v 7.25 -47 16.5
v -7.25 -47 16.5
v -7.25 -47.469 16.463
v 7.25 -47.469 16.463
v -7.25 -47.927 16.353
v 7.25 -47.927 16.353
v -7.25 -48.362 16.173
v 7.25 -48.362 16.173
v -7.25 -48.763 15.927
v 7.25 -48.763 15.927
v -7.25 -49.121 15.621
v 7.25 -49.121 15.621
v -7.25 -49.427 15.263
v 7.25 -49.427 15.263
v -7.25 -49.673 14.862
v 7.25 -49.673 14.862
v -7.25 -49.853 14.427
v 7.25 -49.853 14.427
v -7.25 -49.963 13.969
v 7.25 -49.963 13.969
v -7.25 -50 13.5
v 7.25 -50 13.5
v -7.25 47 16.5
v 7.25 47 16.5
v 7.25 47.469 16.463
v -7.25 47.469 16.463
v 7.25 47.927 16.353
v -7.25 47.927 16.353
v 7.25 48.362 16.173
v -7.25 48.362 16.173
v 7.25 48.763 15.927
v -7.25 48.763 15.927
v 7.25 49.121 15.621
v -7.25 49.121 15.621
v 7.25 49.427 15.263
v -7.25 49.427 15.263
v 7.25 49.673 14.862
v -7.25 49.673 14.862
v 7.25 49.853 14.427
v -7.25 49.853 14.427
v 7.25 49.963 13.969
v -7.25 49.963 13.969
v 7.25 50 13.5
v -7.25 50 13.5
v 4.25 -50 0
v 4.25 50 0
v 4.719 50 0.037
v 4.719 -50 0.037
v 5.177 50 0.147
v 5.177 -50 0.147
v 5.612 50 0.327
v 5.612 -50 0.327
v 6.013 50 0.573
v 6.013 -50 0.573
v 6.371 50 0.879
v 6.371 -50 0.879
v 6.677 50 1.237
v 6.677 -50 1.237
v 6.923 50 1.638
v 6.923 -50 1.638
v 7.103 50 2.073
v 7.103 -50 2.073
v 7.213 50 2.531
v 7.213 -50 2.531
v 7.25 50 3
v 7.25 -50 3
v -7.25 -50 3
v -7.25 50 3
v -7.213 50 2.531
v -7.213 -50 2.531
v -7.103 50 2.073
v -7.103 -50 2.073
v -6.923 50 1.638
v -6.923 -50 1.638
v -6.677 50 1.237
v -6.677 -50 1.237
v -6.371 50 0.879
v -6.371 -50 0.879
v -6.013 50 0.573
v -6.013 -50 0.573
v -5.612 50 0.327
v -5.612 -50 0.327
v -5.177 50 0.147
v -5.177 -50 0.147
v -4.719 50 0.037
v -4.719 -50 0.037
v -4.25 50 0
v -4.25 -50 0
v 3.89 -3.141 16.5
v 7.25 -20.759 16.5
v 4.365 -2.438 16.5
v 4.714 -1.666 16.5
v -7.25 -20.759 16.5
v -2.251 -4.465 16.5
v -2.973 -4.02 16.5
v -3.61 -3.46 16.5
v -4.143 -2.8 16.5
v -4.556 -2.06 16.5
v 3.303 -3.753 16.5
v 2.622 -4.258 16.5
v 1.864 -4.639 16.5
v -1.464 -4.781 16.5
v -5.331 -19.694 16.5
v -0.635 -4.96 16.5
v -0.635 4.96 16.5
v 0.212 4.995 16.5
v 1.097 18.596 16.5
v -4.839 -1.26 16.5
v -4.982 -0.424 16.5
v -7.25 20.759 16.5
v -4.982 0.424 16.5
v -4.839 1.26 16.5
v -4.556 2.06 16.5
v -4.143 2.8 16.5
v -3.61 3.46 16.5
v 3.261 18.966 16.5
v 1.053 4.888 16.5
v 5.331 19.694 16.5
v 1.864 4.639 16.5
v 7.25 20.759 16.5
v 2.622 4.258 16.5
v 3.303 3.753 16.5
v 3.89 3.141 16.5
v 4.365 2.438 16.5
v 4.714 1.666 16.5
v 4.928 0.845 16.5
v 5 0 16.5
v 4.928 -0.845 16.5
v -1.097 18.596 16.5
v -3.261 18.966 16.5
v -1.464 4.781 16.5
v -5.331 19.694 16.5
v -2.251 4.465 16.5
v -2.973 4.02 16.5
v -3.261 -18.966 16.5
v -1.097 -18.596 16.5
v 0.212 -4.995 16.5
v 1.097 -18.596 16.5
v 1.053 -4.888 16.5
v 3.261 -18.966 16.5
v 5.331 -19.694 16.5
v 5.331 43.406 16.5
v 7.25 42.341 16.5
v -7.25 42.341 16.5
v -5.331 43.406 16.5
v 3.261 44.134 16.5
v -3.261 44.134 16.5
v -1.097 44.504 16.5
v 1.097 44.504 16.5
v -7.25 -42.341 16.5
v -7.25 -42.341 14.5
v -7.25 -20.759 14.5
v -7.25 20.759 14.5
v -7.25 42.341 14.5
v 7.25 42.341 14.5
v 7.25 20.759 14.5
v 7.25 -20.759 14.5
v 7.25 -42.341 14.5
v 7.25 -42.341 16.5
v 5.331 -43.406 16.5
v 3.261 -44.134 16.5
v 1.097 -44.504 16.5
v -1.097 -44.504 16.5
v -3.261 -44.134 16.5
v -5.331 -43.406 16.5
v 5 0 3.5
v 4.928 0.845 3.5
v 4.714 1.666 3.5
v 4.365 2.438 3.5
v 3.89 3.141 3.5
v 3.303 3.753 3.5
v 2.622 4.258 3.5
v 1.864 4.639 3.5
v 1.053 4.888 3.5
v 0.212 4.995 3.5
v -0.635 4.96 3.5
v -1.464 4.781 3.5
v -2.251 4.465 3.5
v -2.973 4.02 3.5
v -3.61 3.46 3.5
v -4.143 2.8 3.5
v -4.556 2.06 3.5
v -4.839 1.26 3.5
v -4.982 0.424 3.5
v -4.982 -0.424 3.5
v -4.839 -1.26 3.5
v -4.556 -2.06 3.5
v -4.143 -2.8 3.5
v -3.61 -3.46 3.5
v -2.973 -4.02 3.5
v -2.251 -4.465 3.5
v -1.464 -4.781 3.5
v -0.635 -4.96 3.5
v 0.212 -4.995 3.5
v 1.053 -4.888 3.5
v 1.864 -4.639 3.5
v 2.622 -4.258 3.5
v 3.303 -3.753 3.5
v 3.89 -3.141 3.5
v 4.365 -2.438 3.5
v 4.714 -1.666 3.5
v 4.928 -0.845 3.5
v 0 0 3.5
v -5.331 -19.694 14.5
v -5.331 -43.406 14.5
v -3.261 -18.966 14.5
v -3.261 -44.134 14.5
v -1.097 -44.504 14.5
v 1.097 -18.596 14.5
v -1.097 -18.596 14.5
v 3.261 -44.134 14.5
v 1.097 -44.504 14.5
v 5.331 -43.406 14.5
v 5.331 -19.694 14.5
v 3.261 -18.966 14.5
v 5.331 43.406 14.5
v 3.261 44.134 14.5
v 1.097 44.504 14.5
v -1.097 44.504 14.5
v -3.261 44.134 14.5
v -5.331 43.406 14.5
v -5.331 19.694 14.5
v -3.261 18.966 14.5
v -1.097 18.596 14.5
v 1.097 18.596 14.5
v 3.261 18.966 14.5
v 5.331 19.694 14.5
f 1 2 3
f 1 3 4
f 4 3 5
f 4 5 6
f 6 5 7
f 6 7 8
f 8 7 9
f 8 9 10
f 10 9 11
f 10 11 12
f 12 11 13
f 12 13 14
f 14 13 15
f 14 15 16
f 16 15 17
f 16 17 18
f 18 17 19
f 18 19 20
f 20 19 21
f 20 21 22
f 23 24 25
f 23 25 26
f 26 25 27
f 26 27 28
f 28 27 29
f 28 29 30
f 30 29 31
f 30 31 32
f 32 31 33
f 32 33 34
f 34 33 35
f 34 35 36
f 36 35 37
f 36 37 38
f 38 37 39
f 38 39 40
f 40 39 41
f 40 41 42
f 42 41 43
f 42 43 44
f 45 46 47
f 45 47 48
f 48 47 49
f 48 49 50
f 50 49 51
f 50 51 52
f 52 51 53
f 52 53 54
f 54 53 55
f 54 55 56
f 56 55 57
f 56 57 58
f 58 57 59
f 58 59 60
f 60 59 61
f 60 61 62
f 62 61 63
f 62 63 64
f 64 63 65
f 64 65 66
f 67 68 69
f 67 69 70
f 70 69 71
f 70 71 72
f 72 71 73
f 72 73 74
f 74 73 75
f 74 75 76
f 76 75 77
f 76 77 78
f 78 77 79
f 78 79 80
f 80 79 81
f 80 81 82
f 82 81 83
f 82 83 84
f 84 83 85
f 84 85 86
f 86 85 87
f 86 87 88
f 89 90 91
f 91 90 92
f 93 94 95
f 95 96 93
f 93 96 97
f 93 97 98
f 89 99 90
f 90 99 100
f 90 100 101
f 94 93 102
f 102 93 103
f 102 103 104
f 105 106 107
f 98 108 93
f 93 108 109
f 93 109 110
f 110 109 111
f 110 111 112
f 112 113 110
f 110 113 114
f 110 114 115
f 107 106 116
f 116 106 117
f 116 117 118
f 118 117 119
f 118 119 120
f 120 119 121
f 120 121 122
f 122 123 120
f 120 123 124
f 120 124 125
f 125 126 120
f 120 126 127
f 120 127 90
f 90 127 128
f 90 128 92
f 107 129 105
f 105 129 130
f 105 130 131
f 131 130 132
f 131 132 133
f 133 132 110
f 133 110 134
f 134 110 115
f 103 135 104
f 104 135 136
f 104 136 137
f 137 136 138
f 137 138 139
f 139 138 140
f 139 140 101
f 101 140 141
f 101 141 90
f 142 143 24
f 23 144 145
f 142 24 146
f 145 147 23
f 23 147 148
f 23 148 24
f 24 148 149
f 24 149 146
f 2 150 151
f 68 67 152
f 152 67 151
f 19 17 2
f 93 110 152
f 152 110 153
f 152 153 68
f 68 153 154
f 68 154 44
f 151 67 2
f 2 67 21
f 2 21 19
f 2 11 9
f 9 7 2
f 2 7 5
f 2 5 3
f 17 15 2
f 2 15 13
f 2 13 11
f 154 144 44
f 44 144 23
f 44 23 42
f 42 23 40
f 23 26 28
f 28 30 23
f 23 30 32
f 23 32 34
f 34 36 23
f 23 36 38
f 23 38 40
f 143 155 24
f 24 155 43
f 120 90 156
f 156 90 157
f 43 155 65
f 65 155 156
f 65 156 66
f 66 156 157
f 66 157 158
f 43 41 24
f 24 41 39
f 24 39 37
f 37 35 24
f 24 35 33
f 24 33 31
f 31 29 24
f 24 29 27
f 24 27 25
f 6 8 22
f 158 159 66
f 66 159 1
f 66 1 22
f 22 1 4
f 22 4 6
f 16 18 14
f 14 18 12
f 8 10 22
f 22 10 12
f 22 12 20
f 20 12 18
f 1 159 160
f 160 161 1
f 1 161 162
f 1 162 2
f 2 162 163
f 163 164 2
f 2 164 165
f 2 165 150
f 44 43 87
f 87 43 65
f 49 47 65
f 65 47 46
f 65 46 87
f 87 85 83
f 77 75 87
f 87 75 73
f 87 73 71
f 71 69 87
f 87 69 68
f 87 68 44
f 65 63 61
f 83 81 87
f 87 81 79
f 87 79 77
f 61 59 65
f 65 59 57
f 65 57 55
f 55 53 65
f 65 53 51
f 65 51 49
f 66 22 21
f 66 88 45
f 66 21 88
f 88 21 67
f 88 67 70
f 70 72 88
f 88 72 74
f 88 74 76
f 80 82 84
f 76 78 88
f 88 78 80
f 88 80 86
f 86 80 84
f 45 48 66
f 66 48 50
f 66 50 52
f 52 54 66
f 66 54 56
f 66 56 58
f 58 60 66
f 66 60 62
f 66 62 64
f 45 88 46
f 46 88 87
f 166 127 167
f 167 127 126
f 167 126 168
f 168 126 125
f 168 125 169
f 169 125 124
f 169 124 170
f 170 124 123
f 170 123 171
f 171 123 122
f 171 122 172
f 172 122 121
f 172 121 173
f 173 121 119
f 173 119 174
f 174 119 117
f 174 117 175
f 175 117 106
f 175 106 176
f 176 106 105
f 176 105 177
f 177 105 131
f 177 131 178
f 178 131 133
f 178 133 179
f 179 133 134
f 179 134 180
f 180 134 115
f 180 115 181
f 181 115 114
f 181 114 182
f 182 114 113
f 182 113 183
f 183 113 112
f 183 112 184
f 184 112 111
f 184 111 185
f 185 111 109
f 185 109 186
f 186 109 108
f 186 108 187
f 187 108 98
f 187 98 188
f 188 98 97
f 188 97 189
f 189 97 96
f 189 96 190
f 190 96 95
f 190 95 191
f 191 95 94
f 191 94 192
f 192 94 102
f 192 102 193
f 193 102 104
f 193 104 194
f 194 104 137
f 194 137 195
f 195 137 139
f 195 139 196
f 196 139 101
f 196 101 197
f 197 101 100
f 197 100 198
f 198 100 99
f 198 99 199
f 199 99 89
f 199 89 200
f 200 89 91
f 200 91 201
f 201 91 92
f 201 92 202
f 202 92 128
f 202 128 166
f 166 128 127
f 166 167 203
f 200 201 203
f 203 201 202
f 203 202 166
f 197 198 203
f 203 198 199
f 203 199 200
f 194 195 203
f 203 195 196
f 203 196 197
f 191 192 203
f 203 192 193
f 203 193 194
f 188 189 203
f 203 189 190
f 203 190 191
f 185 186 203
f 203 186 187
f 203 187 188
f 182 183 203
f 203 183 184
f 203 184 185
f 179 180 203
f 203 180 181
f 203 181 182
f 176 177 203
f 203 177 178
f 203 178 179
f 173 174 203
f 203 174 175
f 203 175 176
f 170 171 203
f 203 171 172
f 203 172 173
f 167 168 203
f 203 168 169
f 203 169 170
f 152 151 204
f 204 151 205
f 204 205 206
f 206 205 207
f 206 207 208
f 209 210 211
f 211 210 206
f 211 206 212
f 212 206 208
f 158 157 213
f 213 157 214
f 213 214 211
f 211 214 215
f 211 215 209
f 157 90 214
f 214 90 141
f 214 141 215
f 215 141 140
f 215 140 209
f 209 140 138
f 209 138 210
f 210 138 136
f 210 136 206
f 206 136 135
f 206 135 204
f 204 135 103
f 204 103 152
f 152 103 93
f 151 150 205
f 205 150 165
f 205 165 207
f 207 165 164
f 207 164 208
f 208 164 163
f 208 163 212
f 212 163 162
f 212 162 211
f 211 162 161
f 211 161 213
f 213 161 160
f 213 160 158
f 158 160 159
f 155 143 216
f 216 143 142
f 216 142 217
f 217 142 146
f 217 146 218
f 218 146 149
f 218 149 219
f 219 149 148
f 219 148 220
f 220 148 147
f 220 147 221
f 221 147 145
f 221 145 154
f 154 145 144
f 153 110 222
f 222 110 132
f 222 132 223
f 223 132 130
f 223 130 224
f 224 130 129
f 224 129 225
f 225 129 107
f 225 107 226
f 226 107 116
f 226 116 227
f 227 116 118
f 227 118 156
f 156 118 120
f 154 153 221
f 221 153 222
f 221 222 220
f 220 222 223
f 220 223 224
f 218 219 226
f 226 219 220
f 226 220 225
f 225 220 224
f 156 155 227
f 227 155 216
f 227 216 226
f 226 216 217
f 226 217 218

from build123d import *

# Parameters (mm, degrees)
SKETCH7_W           = 100
SKETCH7_H           = 14.5
BOSS_EXTRUDE1_DEPTH = 16.5
SKETCH8_R           = 5
CUT_EXTRUDE2_DEPTH  = 13
SKETCH10_R          = 13
CUT_EXTRUDE3_DEPTH  = 2
FILLET1_R           = 3
FILLET3_R           = 3
FILLET4_R           = 3
FILLET5_R           = 3


with BuildPart() as part:
    # Sketch7 → Boss-Extrude1 (new body)
    with BuildSketch(Plane(origin=(0, 0, 0), x_dir=(0, 1, 0), z_dir=(0, 0, 1))):
        Rectangle(SKETCH7_W, SKETCH7_H)
    extrude(amount=BOSS_EXTRUDE1_DEPTH)

    # Sketch8 → Cut-Extrude2 (cut)
    with BuildSketch(Plane(origin=(0, 0, 16.5), x_dir=(0, -1, 0), z_dir=(0, 0, 1))):
        with Locations(Location((0, 0, 0), (0, 0, 90))):
            Circle(SKETCH8_R)
    extrude(amount=-CUT_EXTRUDE2_DEPTH, mode=Mode.SUBTRACT)

    # Sketch10 → Cut-Extrude3 (cut)
    with BuildSketch(Plane.XY.offset(16.5)):
        with Locations((0, -31.55)):
            Circle(SKETCH10_R)
    cut_extrude3 = extrude(amount=-CUT_EXTRUDE3_DEPTH, mode=Mode.SUBTRACT)

    # Mirror1: Cut-Extrude3 across plane
    add(cut_extrude3.mirror(Plane.ZX), mode=Mode.SUBTRACT)

    # Fillet1
    fillet1_edges = [part.edges().sort_by_distance(p)[0] for p in [
        (-7.25, 0, 0),
    ]]
    fillet(fillet1_edges, radius=FILLET1_R)

    # Fillet3
    fillet3_edges = [part.edges().sort_by_distance(p)[0] for p in [
        (7.25, 0, 0),
    ]]
    fillet(fillet3_edges, radius=FILLET3_R)

    # Fillet4
    fillet4_edges = [part.edges().sort_by_distance(p)[0] for p in [
        (0, 50, 16.5),
    ]]
    fillet(fillet4_edges, radius=FILLET4_R)

    # Fillet5
    fillet5_edges = [part.edges().sort_by_distance(p)[0] for p in [
        (0, -50, 16.5),
    ]]
    fillet(fillet5_edges, radius=FILLET5_R)


solid = part.part
